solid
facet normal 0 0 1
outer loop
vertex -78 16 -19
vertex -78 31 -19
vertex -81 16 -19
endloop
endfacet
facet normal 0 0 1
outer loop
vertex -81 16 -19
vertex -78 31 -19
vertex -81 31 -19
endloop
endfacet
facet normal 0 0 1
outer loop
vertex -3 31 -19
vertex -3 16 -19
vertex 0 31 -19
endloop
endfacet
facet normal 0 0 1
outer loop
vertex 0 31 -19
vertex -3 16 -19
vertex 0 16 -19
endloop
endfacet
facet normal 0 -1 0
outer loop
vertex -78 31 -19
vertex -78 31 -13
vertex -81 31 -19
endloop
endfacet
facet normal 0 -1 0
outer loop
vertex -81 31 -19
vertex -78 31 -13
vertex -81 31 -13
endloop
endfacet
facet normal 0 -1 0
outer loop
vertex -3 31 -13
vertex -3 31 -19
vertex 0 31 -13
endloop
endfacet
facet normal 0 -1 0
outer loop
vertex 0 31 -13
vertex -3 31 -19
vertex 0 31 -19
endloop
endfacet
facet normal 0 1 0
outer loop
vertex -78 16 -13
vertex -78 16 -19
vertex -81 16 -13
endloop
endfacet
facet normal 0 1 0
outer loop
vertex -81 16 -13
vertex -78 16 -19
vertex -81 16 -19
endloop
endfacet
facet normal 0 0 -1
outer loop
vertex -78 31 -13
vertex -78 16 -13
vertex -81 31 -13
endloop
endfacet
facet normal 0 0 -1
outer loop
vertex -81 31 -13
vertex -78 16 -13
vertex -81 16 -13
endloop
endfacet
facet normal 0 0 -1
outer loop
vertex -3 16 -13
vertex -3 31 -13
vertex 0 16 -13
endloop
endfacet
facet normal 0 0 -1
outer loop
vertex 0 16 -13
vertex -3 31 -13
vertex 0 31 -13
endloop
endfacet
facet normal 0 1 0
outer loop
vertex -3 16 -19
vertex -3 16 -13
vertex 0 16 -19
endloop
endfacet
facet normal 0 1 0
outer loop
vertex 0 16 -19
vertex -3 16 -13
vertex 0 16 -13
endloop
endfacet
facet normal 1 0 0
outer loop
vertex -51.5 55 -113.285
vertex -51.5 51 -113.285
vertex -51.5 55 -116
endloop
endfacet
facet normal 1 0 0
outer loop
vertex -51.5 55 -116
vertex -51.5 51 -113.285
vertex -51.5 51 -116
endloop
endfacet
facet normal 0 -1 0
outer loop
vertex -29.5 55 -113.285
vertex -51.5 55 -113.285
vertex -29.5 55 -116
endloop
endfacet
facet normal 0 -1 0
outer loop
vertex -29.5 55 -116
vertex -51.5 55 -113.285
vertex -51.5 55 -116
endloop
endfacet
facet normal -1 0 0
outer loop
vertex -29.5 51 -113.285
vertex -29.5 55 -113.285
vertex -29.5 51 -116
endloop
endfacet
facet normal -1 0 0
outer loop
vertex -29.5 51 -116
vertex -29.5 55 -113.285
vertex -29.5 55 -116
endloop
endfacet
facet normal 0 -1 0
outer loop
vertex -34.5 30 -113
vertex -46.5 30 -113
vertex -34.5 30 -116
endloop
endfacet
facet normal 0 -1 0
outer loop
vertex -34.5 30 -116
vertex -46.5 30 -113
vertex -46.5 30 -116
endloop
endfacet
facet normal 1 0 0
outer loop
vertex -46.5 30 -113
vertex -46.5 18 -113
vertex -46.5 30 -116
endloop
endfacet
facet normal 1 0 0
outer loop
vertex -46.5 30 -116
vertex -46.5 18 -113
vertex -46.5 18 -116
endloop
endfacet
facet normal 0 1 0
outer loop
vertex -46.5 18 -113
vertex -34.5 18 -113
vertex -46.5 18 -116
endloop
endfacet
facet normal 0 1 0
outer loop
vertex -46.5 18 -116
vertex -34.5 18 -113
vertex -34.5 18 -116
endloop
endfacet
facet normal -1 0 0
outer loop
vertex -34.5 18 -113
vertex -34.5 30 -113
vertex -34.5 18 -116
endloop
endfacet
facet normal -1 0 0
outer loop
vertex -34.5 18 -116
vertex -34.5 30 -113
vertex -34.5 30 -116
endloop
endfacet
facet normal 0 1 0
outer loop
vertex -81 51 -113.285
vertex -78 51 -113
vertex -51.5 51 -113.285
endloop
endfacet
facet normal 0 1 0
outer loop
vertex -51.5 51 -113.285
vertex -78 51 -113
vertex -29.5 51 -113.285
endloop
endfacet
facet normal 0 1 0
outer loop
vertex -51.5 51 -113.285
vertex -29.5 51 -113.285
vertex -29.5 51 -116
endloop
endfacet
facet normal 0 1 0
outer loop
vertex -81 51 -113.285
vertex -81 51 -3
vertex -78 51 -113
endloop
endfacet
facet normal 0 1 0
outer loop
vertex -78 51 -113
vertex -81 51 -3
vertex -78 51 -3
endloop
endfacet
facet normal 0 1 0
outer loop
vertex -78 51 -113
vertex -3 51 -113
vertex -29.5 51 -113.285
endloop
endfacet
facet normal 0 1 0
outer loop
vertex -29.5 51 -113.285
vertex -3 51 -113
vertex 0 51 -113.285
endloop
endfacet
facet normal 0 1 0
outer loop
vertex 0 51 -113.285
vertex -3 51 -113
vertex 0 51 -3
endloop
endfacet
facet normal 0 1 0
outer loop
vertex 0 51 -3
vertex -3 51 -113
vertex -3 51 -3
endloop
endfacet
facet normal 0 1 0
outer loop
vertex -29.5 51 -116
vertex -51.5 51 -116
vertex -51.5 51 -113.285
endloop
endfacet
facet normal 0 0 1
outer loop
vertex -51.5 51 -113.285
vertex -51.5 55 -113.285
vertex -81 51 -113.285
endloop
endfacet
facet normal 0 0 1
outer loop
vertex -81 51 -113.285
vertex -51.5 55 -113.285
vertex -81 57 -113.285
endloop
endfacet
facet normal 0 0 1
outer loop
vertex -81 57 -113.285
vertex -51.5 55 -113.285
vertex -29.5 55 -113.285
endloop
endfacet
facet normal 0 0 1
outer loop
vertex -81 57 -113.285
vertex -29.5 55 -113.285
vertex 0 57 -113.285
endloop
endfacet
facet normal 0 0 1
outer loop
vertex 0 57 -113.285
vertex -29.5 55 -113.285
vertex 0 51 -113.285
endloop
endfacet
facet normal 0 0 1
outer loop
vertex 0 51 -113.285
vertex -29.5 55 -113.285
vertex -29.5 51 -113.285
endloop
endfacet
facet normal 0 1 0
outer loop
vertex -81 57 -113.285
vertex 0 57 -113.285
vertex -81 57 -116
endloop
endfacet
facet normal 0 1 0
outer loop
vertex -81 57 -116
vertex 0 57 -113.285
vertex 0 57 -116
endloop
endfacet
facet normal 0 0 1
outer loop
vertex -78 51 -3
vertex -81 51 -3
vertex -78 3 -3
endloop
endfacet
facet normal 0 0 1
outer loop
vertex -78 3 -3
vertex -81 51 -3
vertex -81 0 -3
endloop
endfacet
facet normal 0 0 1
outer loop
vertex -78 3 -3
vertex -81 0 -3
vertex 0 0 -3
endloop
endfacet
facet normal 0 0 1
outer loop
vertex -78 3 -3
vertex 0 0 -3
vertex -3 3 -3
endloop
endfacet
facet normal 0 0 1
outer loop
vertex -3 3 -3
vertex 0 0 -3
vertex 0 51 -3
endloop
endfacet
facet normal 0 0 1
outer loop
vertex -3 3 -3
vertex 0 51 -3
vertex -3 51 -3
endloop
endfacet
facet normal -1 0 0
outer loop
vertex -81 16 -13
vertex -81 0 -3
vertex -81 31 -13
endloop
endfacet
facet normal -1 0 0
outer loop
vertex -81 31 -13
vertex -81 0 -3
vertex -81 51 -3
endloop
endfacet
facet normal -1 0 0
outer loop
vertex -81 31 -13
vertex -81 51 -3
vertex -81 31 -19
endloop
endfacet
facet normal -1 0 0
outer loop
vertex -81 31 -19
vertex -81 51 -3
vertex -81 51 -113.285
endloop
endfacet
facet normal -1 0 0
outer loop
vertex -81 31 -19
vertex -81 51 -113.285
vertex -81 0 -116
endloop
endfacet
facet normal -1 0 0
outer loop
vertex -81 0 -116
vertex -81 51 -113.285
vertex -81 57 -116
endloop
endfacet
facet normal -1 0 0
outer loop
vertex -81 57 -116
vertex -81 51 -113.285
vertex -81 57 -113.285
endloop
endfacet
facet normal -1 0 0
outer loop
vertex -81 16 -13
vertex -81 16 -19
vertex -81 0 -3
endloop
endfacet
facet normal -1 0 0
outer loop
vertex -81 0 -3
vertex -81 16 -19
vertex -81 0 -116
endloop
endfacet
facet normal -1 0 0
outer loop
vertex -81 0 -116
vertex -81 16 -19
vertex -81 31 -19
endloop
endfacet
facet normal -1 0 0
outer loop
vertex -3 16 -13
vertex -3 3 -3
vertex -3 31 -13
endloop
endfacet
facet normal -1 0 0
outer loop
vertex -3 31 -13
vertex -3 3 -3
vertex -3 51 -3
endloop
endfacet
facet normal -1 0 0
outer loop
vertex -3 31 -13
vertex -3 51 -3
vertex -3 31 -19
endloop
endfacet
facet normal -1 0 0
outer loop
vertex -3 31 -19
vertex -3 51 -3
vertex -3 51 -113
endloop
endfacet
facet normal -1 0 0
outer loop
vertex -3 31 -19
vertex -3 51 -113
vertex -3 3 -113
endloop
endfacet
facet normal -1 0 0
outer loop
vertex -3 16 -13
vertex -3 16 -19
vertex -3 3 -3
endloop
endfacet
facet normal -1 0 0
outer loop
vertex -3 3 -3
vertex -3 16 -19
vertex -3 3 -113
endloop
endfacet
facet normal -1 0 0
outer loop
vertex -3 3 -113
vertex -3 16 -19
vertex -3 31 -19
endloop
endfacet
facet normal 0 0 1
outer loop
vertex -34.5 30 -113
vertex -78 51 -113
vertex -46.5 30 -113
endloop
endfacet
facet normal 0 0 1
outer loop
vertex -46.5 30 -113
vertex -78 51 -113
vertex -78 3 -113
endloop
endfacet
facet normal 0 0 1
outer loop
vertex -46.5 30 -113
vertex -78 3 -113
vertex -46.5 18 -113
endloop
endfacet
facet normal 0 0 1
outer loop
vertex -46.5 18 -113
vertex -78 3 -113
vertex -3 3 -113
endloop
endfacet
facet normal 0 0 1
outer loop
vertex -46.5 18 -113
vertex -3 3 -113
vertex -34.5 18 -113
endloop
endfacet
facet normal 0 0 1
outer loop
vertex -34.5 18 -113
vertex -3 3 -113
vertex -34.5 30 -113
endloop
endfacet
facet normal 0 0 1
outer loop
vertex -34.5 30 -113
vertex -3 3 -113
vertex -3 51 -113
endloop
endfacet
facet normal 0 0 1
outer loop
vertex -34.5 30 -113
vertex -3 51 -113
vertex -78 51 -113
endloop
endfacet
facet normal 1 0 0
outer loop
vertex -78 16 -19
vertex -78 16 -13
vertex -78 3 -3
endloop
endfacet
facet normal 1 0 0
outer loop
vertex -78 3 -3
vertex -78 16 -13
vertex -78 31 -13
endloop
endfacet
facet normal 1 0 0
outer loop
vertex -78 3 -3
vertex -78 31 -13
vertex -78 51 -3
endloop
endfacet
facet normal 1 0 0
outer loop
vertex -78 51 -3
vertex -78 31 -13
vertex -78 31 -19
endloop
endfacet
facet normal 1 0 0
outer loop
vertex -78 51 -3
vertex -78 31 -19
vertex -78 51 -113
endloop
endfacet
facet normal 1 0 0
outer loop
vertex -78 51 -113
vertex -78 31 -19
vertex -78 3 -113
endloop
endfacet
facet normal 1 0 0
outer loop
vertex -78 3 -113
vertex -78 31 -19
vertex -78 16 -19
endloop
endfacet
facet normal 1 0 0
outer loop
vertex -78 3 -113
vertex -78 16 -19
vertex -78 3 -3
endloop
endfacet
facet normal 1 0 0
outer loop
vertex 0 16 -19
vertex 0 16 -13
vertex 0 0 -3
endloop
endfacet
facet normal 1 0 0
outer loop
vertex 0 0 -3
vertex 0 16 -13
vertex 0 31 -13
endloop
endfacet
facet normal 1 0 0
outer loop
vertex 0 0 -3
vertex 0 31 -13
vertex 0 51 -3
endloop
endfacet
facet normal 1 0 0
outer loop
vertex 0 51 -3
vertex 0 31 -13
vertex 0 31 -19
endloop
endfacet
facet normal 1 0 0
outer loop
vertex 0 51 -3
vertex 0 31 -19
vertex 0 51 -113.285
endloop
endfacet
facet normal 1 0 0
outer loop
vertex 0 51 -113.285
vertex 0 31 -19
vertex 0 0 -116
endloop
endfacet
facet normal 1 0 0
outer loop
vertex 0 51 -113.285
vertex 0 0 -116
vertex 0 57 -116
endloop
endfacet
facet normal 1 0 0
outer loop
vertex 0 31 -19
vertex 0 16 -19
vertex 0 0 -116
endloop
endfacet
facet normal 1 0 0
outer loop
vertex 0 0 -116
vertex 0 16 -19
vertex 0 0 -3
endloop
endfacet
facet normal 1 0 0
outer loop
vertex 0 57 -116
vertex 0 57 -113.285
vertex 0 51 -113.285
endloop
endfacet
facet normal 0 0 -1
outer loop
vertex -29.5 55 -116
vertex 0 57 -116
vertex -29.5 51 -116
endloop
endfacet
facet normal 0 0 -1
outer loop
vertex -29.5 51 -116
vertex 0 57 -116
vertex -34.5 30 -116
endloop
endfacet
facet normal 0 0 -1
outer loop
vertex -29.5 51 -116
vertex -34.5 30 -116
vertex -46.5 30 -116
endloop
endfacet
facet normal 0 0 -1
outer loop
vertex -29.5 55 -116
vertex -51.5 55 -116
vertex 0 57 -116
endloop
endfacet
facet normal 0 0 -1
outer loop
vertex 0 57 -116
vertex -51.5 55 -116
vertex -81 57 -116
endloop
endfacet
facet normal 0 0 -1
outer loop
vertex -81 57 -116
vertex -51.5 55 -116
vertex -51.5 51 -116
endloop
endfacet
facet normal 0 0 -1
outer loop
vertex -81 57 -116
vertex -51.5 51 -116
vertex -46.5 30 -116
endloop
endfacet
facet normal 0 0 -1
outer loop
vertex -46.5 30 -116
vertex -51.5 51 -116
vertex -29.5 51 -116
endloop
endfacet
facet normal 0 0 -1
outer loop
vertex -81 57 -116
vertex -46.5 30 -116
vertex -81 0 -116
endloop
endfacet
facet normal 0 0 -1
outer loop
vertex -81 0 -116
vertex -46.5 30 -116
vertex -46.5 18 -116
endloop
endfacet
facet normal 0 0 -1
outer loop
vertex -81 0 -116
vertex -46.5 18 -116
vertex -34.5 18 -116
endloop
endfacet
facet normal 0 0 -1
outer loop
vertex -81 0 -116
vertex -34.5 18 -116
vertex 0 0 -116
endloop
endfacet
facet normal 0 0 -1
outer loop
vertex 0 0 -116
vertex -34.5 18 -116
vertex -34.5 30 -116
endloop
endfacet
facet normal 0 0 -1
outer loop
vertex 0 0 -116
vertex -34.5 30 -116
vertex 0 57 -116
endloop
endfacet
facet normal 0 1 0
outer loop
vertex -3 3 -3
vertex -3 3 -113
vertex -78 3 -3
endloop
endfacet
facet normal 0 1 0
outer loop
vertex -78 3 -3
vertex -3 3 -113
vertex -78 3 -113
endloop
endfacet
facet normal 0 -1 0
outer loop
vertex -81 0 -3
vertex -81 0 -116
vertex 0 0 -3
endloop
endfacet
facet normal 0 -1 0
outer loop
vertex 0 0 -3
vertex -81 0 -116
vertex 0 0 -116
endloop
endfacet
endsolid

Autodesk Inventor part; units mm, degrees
ref_plane "YZ Plane" through (0, 0, 0) normal (1, 0, 0) x (0, 1, 0)
ref_plane "XZ Plane" through (0, 0, 0) normal (0, 1, 0) x (-1, 0, 0)
ref_plane "XY Plane" through (0, 0, 0) normal (0, 0, 1) x (1, 0, 0)
sketch "Sketch1" plane through (0, 0, 0) normal (0, 1, 0) x (-1, 0, 0)
  line L0 (0, 0) -> (81, 0)
  line L1 (81, 0) -> (81, -116)
  line L2 (81, -116) -> (0, -116)
  line L3 (0, -116) -> (0, 0)
  dimension "d0" = 81
  dimension "d1" = 116
extrude "Extrusion1" add sketch "Sketch1" along normal blind 3
sketch "Sketch2" plane through (0, 3, 0) normal (0, 1, 0) x (1, 0, 0)
  line L0 (0, 116) -> (-81, 116) projected
  line L1 (0, 0) -> (-81, 0)
  line L2 (-81, 0) -> (-81, 116)
  line L3 (-81, 116) -> (0, 116)
  line L4 (0, 116) -> (0, 0)
  line L5 (-3, 3) -> (-78, 3)
  line L6 (-78, 3) -> (-78, 113)
  line L7 (-78, 113) -> (-3, 113)
  line L8 (-3, 113) -> (-3, 3)
  dimension "d4" = 3
  dimension "d5" = 3
  dimension "d6" = 3
  dimension "d7" = 3
extrude "Extrusion2" add sketch "Sketch2" along normal blind 48
sketch "Sketch3" plane through (-81, 0, 0) normal (0, 0, 1) x (1, 0, 0)
  line L0 (0, 51) -> (81, 51) projected
  line L1 (0, 51) -> (81, 51)
  line L2 (81, 51) -> (81, 0)
  line L3 (81, 0) -> (0, 0)
  line L4 (0, 0) -> (0, 51)
extrude "Extrusion3" cut sketch "Sketch3" against normal up to surface (3 mm away)
sketch "Sketch4" plane through (0, 51, 0) normal (0, 1, 0) x (1, 0, 0)
  line L0 (-81, 116) -> (-81, 3) projected
  line L1 (0, 3) -> (0, 116) projected
  line L2 (-81, 116) -> (0, 116)
  line L3 (0, 116) -> (0, 113.2852)
  line L4 (0, 113.2852) -> (-81, 113.2852)
  line L5 (-81, 113.2852) -> (-81, 116)
  point P0 (0, 0)
  point P1 (0, 116)
extrude "Extrusion4" add sketch "Sketch4" along normal blind 6
sketch "Sketch5" plane through (0, 0, -116) normal (0, 0, -1) x (-1, 0, 0)
  line L0 (29.5, 55) -> (51.5, 55)
  line L1 (51.5, 55) -> (51.5, 51)
  line L2 (51.5, 51) -> (29.5, 51)
  line L3 (29.5, 51) -> (29.5, 55)
  line L4 (34.5, 30) -> (46.5, 30)
  line L5 (46.5, 30) -> (46.5, 18)
  line L6 (46.5, 18) -> (34.5, 18)
  line L7 (34.5, 18) -> (34.5, 30)
  line L8 (81, 0) -> (81, 57) projected
  line L9 (0, 0) -> (81, 0) projected
  line L10 (0, 57) -> (81, 57) projected
  point P0 (51.5, 53)
  dimension "d14" = 12
  dimension "d15" = 12
  dimension "d16" = 34.5
  dimension "d17" = 18
  dimension "d18" = 22
  dimension "d19" = 4
  dimension "d20" = 6
  dimension "d21" = 29.5
extrude "Extrusion5" cut sketch "Sketch5" against normal up to surface (3 mm away)
sketch "Sketch6" plane through (0, 0, -3) normal (1, 0, 0) x (0, 0, -1)
  line L0 (10, 31) -> (16, 31)
  line L1 (16, 31) -> (16, 16)
  line L2 (16, 16) -> (10, 16)
  line L3 (10, 16) -> (10, 31)
  line L4 (0, 51) -> (0, 0) projected
  line L5 (0, 0) -> (113, 0) projected
  point P0 (-3, 0)
  point P1 (13, 16)
  dimension "d24" = 6
  dimension "d25" = 15
  dimension "d26" = 10
  dimension "d27" = 16
extrude "Extrusion6" cut sketch "Sketch6" against normal up to surface (81 mm away)
properties part number "bin v1"
